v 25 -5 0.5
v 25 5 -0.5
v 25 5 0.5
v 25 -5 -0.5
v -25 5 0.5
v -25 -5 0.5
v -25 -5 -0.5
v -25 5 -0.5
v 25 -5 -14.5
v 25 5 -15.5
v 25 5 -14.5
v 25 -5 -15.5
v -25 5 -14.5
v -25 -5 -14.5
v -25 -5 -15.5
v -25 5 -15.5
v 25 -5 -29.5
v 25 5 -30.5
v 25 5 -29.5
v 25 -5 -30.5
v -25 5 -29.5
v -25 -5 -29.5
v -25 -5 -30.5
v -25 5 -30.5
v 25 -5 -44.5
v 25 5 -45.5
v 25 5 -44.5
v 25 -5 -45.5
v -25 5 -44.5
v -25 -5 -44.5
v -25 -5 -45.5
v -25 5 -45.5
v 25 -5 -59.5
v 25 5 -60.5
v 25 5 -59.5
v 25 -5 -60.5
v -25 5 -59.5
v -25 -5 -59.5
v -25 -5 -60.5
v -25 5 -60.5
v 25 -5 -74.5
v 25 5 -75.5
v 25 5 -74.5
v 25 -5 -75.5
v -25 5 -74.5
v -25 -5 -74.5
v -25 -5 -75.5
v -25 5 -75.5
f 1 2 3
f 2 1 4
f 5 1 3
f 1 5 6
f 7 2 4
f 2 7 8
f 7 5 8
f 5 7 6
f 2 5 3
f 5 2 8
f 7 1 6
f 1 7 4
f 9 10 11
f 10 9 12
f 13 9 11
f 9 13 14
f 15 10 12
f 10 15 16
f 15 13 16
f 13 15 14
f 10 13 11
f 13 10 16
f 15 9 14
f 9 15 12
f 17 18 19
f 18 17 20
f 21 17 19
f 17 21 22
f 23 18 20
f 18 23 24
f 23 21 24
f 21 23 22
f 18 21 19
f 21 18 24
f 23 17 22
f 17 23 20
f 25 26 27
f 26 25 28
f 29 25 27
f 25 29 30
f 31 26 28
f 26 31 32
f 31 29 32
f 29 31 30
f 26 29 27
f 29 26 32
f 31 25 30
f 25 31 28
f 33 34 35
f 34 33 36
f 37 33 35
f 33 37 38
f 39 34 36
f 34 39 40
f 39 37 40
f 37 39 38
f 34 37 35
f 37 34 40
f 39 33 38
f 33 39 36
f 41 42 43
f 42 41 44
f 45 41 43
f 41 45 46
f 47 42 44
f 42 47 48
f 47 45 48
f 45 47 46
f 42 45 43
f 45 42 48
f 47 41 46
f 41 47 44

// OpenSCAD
// Define the dimensions of the rectangular plate
plate_length = 50;  // Length of the plate
plate_width = 10;   // Width of the plate
plate_thickness = 1; // Thickness of the plate
spacing = 15;       // Spacing between each plate

// Function to create a rectangular plate
module rectangular_plate() {
    cube([plate_length, plate_width, plate_thickness], center = true);
}

// Assemble the plates based on the differences_list
module assembly() {
    translate([0, 0, 0]) rectangular_plate();               // Plate 1
    translate([0, 0, -spacing]) rectangular_plate();         // Plate 2
    translate([0, 0, -2 * spacing]) rectangular_plate();     // Plate 3
    translate([0, 0, -3 * spacing]) rectangular_plate();     // Plate 4
    translate([0, 0, -4 * spacing]) rectangular_plate();     // Plate 5
    translate([0, 0, -5 * spacing]) rectangular_plate();     // Plate 6
}

// Render the assembly
assembly();
